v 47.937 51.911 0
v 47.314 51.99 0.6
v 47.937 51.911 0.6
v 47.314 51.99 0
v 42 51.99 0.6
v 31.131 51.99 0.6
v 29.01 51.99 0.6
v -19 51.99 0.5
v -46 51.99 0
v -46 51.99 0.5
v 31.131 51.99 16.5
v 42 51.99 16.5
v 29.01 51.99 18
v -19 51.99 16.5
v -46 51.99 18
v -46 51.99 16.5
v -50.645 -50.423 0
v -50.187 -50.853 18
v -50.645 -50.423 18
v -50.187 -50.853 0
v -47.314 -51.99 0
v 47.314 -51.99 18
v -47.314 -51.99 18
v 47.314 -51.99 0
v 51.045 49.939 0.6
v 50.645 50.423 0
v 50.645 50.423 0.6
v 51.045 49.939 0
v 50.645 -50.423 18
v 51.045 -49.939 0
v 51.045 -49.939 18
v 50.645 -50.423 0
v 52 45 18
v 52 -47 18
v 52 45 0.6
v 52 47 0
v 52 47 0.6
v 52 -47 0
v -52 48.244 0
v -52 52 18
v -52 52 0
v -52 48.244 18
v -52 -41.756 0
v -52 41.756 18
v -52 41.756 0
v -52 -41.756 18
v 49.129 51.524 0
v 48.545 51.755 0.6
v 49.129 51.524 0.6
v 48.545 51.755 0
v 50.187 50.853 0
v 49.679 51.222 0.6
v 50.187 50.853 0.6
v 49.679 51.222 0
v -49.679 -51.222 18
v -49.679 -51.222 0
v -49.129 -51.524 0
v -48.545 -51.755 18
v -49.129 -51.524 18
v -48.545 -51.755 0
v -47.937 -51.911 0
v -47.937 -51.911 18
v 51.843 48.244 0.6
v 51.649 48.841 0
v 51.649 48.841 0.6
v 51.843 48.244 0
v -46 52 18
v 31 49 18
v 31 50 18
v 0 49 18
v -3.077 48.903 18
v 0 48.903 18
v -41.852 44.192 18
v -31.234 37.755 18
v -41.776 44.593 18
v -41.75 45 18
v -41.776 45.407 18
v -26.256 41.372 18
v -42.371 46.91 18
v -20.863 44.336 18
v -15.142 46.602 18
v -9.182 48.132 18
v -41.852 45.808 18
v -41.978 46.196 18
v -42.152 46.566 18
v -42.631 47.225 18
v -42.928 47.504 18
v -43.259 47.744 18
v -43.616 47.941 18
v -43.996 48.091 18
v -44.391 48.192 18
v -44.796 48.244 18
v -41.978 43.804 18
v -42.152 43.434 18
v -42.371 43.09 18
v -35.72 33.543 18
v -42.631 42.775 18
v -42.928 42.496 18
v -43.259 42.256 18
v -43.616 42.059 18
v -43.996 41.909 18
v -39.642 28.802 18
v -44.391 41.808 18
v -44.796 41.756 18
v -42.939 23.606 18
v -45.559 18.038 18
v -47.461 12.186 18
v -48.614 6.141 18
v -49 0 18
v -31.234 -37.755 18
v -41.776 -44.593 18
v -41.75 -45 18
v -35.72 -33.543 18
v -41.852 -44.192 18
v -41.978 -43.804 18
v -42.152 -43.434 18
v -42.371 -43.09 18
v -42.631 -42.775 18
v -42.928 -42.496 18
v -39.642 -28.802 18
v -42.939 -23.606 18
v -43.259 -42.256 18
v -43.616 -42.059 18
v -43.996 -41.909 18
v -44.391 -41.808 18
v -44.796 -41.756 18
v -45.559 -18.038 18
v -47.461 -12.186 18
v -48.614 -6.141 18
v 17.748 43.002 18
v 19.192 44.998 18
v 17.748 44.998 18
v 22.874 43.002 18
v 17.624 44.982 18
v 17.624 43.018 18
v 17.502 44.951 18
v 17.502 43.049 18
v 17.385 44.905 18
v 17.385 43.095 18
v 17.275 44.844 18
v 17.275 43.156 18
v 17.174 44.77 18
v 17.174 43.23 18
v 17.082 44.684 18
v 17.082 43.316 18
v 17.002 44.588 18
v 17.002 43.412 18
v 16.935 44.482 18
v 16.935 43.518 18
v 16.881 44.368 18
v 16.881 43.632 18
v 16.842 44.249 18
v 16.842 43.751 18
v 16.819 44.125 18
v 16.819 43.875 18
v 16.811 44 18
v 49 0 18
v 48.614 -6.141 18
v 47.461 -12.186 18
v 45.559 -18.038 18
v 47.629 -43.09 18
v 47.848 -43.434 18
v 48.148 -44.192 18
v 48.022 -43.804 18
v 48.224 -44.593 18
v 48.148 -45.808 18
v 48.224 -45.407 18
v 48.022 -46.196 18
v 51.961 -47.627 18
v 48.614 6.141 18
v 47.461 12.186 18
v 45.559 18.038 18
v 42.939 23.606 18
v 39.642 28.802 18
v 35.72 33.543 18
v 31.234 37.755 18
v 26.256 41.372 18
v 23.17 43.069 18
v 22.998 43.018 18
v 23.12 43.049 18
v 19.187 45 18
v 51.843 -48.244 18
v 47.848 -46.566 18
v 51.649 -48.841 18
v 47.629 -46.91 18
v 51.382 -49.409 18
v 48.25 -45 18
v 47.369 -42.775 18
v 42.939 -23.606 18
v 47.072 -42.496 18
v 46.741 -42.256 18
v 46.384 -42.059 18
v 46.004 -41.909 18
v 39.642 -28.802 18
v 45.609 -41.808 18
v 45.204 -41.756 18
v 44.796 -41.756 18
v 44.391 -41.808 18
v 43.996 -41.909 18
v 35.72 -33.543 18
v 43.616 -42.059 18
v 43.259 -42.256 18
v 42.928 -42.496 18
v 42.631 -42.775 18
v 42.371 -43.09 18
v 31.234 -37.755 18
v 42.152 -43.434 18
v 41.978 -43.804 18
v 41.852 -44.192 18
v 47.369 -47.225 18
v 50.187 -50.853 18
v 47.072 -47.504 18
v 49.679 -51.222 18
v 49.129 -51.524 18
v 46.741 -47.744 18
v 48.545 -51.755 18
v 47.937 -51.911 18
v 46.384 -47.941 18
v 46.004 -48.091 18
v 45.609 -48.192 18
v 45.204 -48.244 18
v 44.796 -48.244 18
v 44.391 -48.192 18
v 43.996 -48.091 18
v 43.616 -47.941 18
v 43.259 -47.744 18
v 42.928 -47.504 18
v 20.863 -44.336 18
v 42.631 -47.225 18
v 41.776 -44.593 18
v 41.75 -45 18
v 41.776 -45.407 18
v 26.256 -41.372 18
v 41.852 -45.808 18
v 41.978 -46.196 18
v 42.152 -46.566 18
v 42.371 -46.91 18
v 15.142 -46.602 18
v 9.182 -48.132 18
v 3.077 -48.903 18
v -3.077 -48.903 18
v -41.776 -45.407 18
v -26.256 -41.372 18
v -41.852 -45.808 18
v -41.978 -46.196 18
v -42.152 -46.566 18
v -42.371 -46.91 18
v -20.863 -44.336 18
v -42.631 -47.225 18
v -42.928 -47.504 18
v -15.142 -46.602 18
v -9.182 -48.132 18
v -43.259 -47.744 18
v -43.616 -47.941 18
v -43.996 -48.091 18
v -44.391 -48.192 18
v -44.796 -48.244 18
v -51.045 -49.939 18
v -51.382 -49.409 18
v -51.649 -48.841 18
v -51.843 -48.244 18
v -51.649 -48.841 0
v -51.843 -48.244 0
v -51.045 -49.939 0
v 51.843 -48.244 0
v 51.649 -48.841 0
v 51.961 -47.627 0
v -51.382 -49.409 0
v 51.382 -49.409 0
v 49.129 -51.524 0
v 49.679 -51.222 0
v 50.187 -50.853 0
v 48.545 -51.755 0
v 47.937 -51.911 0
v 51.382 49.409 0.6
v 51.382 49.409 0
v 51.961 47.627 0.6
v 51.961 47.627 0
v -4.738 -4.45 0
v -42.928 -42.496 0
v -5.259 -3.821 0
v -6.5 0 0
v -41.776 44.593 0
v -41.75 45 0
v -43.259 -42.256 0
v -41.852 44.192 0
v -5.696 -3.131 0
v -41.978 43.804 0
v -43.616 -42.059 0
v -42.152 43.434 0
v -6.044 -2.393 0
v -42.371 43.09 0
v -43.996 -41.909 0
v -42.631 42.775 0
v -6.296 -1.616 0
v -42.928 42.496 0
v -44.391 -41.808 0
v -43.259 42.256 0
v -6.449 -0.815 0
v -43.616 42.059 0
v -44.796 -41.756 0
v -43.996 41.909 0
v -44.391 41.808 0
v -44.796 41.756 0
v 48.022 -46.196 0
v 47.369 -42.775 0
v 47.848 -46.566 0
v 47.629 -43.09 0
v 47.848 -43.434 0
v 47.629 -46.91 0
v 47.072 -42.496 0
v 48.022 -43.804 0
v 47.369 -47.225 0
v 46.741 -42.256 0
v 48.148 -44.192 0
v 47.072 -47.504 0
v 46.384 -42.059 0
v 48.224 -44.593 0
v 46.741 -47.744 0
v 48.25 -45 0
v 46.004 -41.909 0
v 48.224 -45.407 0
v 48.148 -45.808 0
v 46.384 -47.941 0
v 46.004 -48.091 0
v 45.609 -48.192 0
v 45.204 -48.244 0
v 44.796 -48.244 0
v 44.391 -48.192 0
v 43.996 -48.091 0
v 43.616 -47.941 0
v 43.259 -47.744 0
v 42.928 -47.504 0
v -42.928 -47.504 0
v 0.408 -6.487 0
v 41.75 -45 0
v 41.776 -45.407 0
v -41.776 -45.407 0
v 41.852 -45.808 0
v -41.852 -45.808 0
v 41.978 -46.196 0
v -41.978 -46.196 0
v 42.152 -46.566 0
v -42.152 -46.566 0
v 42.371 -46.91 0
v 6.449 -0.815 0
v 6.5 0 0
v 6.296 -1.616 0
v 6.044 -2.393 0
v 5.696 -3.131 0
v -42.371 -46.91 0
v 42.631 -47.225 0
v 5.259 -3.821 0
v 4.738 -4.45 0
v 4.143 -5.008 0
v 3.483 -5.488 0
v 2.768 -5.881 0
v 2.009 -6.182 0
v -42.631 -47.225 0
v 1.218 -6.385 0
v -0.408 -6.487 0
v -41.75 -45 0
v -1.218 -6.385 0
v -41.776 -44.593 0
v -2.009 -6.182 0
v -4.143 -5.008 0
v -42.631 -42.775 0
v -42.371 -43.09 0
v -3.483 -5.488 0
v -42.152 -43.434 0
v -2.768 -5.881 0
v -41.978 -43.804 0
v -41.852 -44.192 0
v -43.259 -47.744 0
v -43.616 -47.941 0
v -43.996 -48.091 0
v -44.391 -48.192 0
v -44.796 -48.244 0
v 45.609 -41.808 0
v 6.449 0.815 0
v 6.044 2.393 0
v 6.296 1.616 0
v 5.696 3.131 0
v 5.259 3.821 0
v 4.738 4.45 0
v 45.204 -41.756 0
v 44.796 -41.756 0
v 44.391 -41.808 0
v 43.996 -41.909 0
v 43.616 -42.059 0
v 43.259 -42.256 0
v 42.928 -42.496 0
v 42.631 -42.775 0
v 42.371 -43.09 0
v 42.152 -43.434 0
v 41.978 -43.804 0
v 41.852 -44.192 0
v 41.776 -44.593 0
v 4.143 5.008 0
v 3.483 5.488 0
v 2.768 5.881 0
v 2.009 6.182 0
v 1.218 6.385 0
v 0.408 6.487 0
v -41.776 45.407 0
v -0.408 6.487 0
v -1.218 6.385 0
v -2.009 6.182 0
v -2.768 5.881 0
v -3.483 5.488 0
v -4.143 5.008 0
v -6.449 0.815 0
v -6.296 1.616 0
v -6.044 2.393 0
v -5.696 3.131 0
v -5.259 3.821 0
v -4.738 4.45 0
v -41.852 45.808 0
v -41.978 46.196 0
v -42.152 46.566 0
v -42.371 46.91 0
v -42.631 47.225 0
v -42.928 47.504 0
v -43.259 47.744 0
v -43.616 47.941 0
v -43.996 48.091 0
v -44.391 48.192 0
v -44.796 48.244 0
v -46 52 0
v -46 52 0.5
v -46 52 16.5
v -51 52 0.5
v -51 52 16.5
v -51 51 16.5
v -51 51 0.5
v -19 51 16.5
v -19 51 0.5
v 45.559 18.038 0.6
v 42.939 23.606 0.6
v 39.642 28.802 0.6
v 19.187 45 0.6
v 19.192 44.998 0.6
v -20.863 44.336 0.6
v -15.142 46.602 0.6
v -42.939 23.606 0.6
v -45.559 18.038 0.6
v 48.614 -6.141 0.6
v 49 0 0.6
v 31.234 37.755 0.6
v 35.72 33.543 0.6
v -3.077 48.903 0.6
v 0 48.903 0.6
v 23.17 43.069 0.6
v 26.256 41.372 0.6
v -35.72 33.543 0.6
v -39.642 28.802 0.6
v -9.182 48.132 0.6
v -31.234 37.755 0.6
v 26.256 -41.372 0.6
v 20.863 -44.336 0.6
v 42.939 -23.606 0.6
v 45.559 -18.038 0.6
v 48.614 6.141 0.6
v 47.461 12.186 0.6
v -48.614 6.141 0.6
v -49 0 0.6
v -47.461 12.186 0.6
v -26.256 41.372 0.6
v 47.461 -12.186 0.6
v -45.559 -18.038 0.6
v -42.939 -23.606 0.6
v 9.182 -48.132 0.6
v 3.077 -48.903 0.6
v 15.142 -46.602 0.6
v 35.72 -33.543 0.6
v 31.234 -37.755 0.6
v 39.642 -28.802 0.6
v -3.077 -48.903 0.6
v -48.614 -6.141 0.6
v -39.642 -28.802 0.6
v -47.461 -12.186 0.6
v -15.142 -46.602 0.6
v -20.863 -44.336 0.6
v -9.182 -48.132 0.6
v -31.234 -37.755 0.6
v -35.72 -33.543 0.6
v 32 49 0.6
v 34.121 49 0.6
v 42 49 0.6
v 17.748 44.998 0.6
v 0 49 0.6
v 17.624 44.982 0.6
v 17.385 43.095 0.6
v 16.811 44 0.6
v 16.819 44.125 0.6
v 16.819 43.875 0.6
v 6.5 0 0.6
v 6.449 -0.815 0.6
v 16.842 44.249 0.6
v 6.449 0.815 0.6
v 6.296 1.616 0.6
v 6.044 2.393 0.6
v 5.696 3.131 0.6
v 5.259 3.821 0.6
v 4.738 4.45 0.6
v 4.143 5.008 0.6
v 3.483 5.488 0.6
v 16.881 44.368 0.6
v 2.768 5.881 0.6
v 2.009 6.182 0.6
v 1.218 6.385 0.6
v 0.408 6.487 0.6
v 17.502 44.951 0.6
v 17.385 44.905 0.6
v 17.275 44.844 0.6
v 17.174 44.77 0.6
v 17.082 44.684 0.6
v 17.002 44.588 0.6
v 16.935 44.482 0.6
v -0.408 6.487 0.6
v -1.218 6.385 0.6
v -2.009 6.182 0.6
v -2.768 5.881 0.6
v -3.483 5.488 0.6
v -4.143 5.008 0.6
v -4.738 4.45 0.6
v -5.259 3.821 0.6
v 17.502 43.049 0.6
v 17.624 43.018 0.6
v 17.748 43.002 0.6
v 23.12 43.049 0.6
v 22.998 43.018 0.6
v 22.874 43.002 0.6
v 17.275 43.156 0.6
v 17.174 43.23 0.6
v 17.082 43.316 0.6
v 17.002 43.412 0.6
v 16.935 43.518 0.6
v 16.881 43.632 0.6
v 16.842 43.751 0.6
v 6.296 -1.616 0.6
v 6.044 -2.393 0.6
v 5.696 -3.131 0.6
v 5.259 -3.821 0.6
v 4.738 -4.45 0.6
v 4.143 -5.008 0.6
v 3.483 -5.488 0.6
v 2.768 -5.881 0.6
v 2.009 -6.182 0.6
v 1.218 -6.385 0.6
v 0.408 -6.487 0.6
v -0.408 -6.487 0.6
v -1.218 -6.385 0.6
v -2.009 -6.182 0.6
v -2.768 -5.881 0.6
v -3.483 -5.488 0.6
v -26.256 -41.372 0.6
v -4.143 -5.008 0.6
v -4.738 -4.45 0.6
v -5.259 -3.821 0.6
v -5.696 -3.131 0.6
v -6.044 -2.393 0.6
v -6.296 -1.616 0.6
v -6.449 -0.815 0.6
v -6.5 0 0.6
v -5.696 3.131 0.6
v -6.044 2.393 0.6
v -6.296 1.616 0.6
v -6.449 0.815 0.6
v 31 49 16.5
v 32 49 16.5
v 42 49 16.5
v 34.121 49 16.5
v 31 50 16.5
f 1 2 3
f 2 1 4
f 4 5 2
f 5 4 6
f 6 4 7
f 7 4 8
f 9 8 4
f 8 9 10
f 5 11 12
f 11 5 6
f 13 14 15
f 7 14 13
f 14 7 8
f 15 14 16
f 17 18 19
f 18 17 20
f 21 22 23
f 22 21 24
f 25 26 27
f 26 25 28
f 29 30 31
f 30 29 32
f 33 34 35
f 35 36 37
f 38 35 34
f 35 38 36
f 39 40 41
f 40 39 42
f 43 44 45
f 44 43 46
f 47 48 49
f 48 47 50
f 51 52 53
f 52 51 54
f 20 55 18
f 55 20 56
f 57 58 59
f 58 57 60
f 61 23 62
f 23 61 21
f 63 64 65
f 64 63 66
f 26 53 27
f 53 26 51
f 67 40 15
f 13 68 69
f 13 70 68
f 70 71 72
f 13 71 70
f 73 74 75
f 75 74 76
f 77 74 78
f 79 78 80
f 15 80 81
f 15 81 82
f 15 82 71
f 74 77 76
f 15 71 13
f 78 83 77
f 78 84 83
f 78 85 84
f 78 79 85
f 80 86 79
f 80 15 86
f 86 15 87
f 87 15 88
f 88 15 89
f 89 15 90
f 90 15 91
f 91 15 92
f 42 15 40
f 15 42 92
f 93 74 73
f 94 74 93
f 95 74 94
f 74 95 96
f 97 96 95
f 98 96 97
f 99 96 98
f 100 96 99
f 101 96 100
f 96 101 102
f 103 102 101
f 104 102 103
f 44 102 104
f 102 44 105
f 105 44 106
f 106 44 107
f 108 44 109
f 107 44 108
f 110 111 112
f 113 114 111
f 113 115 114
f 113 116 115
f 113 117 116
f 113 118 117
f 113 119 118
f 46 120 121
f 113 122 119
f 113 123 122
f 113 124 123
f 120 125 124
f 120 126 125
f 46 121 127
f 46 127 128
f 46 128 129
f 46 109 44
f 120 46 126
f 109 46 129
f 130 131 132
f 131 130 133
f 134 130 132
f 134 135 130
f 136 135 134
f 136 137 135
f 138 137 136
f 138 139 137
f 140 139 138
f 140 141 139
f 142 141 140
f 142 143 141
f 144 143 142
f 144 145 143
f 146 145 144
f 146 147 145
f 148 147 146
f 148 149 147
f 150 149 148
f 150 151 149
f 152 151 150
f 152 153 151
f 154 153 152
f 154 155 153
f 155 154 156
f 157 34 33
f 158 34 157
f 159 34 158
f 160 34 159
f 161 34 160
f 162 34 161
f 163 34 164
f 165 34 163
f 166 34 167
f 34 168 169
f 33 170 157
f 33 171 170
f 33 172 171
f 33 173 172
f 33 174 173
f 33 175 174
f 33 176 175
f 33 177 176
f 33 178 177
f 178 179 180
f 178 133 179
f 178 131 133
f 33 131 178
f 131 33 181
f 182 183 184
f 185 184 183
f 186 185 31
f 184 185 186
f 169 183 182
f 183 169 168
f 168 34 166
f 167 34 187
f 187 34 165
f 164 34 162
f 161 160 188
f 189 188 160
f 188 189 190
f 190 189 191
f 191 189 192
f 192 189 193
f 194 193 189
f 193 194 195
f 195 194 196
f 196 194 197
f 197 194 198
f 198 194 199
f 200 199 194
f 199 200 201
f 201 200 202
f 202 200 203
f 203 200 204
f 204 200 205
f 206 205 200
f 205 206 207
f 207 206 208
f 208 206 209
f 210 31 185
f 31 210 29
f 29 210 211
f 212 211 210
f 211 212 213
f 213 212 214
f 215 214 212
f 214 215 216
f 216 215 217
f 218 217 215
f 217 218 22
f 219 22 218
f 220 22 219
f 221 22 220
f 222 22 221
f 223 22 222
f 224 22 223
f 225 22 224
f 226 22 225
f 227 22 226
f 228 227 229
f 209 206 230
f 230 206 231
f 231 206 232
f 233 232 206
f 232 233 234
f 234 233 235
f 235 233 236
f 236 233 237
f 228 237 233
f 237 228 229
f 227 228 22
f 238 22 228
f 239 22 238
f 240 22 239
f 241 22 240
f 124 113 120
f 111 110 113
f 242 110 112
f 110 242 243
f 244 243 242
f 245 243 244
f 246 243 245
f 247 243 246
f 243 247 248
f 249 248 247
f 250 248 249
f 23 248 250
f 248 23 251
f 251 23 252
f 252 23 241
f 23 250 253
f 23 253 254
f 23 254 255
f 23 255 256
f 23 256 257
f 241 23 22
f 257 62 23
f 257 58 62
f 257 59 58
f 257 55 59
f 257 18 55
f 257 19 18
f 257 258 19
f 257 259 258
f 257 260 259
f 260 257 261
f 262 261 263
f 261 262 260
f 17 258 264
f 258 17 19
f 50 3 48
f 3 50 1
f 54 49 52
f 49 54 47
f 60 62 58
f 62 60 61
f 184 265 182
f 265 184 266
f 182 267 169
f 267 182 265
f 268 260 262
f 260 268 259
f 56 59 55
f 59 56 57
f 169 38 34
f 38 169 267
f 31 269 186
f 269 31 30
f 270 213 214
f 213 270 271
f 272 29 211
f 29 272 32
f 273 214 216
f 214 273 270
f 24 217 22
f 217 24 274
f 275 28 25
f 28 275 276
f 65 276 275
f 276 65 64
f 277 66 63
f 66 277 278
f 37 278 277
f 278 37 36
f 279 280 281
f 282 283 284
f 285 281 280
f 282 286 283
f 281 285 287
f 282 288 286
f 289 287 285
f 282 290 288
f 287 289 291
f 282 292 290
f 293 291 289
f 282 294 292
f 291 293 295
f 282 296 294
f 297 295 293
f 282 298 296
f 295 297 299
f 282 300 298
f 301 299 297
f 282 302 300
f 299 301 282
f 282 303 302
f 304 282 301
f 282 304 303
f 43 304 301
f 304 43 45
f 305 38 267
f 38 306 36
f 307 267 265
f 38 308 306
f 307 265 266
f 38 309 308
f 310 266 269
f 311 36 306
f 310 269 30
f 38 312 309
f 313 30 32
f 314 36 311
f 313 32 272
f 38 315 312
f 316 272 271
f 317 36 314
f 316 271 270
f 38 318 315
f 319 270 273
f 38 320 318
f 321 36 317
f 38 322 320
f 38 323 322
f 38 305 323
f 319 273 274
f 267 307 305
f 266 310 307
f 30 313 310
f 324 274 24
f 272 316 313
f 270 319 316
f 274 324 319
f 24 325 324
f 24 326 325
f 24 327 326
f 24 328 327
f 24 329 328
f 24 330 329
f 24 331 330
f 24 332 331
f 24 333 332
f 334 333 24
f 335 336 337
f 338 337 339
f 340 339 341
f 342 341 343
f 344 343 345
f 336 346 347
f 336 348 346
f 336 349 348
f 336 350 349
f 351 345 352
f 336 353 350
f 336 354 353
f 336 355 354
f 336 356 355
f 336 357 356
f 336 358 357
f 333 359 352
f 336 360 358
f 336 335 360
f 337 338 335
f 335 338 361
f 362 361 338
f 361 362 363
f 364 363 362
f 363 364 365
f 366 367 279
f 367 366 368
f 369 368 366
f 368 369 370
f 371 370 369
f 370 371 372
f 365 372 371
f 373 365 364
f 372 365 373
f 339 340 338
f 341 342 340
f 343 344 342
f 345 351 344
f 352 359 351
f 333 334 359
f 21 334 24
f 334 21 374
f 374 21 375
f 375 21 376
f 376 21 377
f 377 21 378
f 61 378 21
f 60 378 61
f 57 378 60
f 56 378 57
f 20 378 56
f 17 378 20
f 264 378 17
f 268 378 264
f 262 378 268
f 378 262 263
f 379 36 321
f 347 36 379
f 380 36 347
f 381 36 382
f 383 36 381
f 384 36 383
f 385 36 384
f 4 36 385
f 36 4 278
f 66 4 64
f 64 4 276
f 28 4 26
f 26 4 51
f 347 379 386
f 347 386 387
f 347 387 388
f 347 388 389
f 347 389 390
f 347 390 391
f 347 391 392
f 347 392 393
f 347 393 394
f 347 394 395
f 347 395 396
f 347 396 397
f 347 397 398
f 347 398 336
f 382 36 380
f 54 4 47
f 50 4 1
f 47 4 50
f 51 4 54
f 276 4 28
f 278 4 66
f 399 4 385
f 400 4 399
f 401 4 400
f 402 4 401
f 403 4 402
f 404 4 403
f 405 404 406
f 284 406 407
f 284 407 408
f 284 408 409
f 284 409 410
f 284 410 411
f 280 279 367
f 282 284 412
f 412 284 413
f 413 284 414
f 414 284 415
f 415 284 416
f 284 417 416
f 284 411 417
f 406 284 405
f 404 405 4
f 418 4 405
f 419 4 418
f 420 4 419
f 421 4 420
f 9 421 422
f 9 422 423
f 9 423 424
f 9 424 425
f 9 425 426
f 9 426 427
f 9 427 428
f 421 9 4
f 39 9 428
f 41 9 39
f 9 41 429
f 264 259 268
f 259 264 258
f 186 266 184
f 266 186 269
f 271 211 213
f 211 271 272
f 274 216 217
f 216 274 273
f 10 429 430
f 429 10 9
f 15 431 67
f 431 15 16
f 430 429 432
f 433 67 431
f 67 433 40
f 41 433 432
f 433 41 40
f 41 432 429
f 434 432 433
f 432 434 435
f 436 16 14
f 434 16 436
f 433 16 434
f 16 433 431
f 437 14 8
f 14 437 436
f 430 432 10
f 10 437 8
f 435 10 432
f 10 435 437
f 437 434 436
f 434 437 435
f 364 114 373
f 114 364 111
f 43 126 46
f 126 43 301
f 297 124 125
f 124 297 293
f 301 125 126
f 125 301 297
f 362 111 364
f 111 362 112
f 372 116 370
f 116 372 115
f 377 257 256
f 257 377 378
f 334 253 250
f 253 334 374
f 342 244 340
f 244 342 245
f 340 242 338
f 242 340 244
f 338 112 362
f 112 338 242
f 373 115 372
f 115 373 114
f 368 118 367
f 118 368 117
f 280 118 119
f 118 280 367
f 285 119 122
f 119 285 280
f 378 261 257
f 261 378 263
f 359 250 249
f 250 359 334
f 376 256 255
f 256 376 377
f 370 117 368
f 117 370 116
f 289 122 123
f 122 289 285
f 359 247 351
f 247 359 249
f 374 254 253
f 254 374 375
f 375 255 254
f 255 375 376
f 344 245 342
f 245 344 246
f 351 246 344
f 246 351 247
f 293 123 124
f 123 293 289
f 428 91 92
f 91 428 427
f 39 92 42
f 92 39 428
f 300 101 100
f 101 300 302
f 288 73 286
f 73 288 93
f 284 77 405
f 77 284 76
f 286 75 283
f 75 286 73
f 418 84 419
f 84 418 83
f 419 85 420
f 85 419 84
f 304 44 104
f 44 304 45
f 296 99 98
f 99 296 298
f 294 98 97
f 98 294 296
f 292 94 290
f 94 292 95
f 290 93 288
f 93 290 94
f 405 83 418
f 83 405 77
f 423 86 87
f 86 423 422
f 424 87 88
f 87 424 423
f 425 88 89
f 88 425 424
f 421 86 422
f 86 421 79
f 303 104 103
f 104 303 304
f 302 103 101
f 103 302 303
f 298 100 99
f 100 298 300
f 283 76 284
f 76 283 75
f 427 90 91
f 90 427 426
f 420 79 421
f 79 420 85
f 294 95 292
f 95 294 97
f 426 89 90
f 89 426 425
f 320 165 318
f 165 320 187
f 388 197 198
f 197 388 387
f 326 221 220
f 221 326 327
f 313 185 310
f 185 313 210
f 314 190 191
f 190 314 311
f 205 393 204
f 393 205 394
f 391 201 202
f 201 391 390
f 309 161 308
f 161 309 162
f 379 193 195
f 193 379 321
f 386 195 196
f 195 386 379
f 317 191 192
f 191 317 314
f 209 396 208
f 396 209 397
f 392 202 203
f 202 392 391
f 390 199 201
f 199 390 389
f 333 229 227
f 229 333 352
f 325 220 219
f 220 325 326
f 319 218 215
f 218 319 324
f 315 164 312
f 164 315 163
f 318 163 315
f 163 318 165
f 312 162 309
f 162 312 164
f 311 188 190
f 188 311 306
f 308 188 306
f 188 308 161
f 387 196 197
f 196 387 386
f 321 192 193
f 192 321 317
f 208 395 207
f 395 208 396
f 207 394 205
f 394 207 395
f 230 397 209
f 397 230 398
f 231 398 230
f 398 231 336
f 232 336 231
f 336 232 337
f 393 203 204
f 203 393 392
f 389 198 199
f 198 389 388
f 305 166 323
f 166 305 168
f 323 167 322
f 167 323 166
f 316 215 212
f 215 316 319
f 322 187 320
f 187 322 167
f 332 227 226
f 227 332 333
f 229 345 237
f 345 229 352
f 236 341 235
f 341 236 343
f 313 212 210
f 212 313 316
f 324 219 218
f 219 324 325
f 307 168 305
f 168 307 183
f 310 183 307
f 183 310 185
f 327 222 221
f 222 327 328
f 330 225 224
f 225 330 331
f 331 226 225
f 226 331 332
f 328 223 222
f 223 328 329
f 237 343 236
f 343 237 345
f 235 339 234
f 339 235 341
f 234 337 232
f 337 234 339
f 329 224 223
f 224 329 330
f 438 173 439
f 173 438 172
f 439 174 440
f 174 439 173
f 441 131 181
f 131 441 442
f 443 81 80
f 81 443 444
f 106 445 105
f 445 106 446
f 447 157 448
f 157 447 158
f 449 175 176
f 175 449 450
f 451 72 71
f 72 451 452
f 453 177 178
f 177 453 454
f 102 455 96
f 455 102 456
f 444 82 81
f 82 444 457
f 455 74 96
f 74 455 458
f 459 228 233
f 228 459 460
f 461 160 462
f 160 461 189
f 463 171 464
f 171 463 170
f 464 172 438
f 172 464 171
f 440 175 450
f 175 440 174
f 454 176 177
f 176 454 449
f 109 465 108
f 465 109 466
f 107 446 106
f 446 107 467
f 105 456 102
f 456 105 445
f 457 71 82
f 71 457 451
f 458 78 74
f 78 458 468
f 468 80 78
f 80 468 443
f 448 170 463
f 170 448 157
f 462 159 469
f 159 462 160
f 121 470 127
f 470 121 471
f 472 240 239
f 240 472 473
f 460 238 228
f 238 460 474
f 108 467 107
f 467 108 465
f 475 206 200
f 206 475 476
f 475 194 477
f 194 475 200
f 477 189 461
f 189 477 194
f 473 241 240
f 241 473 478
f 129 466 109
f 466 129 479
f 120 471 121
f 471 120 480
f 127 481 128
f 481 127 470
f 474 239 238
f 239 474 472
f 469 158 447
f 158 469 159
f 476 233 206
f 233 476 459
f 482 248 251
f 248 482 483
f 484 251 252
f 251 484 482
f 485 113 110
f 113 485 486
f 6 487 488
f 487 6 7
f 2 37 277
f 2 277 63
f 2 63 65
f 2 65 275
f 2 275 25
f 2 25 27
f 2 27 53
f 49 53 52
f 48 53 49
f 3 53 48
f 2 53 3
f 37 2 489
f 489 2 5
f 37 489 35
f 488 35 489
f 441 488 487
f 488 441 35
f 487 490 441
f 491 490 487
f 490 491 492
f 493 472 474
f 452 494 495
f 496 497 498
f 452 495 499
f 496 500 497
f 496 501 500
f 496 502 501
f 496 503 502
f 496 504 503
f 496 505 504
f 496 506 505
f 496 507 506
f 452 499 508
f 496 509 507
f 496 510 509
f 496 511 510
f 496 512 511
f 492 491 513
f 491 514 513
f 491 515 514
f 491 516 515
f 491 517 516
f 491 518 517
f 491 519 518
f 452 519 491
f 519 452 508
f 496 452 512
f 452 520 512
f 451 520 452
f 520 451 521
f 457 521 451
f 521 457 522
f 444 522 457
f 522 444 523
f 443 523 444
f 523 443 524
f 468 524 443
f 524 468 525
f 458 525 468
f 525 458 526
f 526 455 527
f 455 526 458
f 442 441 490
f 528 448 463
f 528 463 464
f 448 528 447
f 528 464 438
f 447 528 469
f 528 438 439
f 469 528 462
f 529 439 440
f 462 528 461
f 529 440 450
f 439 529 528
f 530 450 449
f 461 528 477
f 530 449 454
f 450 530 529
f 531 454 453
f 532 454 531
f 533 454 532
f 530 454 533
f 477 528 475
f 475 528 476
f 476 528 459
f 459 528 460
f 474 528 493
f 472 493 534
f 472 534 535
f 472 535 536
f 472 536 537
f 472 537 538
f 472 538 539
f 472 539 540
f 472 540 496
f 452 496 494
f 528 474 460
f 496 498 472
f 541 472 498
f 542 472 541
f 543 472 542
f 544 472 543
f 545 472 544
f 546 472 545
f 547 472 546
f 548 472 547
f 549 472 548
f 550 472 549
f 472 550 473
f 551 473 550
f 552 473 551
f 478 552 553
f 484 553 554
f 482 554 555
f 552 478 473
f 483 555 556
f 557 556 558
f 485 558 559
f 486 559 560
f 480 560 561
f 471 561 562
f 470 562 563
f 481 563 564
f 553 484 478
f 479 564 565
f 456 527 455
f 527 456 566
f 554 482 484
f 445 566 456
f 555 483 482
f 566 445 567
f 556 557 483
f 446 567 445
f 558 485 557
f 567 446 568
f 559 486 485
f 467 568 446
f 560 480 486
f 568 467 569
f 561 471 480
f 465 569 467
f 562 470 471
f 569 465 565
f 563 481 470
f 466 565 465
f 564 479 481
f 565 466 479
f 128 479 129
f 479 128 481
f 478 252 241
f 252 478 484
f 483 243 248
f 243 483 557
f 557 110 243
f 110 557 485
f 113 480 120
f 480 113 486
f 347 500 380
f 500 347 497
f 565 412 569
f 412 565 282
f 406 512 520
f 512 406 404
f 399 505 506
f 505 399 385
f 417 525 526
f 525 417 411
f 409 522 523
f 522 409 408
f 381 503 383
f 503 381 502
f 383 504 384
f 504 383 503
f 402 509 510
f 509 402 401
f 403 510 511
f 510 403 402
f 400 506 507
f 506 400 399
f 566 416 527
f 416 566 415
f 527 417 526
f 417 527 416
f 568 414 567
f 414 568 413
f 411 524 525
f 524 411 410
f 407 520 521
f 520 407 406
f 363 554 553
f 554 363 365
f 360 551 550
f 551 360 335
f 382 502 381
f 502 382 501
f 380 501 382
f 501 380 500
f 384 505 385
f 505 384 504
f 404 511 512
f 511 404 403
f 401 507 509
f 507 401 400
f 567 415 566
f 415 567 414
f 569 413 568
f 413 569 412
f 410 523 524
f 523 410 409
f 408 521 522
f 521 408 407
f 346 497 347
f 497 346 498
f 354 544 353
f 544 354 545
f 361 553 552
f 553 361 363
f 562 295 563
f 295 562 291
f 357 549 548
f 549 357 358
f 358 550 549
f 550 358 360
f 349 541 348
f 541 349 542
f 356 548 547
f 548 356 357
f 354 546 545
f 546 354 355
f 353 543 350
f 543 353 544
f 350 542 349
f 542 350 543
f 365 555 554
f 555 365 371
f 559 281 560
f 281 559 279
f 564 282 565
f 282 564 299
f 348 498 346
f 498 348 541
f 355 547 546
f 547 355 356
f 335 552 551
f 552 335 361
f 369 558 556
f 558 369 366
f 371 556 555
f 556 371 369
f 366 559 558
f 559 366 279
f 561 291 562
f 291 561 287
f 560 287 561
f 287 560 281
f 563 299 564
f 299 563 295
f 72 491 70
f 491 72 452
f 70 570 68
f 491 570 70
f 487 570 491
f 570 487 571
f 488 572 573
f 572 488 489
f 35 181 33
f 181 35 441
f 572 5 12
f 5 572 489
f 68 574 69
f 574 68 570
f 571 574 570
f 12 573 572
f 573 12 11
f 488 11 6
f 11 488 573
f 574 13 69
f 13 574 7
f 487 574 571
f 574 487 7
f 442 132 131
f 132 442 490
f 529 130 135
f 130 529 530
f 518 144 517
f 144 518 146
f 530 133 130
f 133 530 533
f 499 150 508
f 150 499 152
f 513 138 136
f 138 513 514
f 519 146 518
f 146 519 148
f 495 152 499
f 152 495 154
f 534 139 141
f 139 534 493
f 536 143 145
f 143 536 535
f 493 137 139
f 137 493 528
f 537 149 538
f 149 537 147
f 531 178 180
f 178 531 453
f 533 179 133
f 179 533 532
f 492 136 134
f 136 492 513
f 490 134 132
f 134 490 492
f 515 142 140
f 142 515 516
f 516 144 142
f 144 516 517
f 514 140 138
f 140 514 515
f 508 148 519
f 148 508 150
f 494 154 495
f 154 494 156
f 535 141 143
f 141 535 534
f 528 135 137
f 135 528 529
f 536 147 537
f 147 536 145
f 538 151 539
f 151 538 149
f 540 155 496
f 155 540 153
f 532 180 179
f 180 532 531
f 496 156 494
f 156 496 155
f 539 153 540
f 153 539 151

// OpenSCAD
$fn = 50;


union() {
	difference() {
		union() {
			translate(v = [0, 0, 0]) {
				rotate(a = [0, 0, 0]) {
					hull() {
						translate(v = [-47.0000000000, 47.0000000000, 0]) {
							rotate(a = [0, 0, 0]) {
								translate(v = [0, 0, 0]) {
									rotate(a = [0, 0, 0]) {
										cylinder(h = 18, r = 5);
									}
								}
							}
						}
						translate(v = [47.0000000000, 47.0000000000, 0]) {
							rotate(a = [0, 0, 0]) {
								translate(v = [0, 0, 0]) {
									rotate(a = [0, 0, 0]) {
										cylinder(h = 18, r = 5);
									}
								}
							}
						}
						translate(v = [-47.0000000000, -47.0000000000, 0]) {
							rotate(a = [0, 0, 0]) {
								translate(v = [0, 0, 0]) {
									rotate(a = [0, 0, 0]) {
										cylinder(h = 18, r = 5);
									}
								}
							}
						}
						translate(v = [47.0000000000, -47.0000000000, 0]) {
							rotate(a = [0, 0, 0]) {
								translate(v = [0, 0, 0]) {
									rotate(a = [0, 0, 0]) {
										cylinder(h = 18, r = 5);
									}
								}
							}
						}
					}
				}
			}
			translate(v = [-52.0000000000, 46.0000000000, 0]) {
				rotate(a = [0, 0, 0]) {
					cube(size = [6, 6, 18]);
				}
			}
		}
		union() {
			#translate(v = [-51.0000000000, 51.0000000000, 0.5000000000]) {
				rotate(a = [0, 0, 0]) {
					cube(size = [32, 1, 16]);
				}
			}
			translate(v = [-52.5000000000, -45.0000000000, -125]) {
				rotate(a = [0, 0, 0]) {
					hull() {
						translate(v = [7.5000000000, 0, 0]) {
							rotate(a = [0, 0, 0]) {
								translate(v = [0, 0, 0]) {
									rotate(a = [0, 0, 0]) {
										cylinder(h = 250, r = 3.2500000000);
									}
								}
							}
						}
						translate(v = [-7.5000000000, 0, 0]) {
							rotate(a = [0, 0, 0]) {
								translate(v = [0, 0, 0]) {
									rotate(a = [0, 0, 0]) {
										cylinder(h = 250, r = 3.2500000000);
									}
								}
							}
						}
					}
				}
			}
			translate(v = [-52.5000000000, 45.0000000000, -125]) {
				rotate(a = [0, 0, 0]) {
					hull() {
						translate(v = [7.5000000000, 0, 0]) {
							rotate(a = [0, 0, 0]) {
								translate(v = [0, 0, 0]) {
									rotate(a = [0, 0, 0]) {
										cylinder(h = 250, r = 3.2500000000);
									}
								}
							}
						}
						translate(v = [-7.5000000000, 0, 0]) {
							rotate(a = [0, 0, 0]) {
								translate(v = [0, 0, 0]) {
									rotate(a = [0, 0, 0]) {
										cylinder(h = 250, r = 3.2500000000);
									}
								}
							}
						}
					}
				}
			}
			translate(v = [45.0000000000, -45.0000000000, -125.0000000000]) {
				rotate(a = [0, 0, 0]) {
					cylinder(h = 250, r = 3.2500000000);
				}
			}
			translate(v = [0, 0, 0.6000000000]) {
				rotate(a = [0, 0, 0]) {
					cylinder(h = 20.4000000000, r = 49.0000000000);
				}
			}
			translate(v = [0, 0, -9.0000000000]) {
				rotate(a = [0, 0, 0]) {
					cylinder(h = 18, r = 6.5000000000);
				}
			}
			translate(v = [0.0000000000, 45.0000000000, 0.6000000000]) {
				rotate(a = [0, 0, 0]) {
					cube(size = [52.0000000000, 4, 20.4000000000]);
				}
			}
			translate(v = [42.0000000000, 45.0000000000, 0.6000000000]) {
				rotate(a = [0, 0, 0]) {
					cube(size = [10, 7, 20.4000000000]);
				}
			}
			translate(v = [31.0000000000, 45.0000000000, 16.5000000000]) {
				rotate(a = [0, 0, 0]) {
					cube(size = [21, 7, 1.5000000000]);
				}
			}
			translate(v = [28.2500000000, 52.7500000000, 0.6000000000]) {
				rotate(a = [0, 0, -45]) {
					cube(size = [7.5000000000, 1.5000000000, 20.4000000000]);
				}
			}
			translate(v = [11.0610000000, 43.0000000000, 0.6000000000]) {
				rotate(a = [0, 0, 0]) {
					cube(size = [7.5000000000, 2, 17.4000000000]);
				}
			}
		}
	}
	union() {
		translate(v = [20.3110000000, 44.0000000000, 0]) {
			rotate(a = [0, 0, 0]) {
				hull() {
					translate(v = [2.5000000000, 0, 0]) {
						rotate(a = [0, 0, 0]) {
							#translate(v = [0, 0, 0]) {
								rotate(a = [0, 0, 0]) {
									cylinder(h = 18, r = 1.0000000000);
								}
							}
						}
					}
					translate(v = [-2.5000000000, 0, 0]) {
						rotate(a = [0, 0, 0]) {
							#translate(v = [0, 0, 0]) {
								rotate(a = [0, 0, 0]) {
									cylinder(h = 18, r = 1.0000000000);
								}
							}
						}
					}
				}
			}
		}
	}
}
